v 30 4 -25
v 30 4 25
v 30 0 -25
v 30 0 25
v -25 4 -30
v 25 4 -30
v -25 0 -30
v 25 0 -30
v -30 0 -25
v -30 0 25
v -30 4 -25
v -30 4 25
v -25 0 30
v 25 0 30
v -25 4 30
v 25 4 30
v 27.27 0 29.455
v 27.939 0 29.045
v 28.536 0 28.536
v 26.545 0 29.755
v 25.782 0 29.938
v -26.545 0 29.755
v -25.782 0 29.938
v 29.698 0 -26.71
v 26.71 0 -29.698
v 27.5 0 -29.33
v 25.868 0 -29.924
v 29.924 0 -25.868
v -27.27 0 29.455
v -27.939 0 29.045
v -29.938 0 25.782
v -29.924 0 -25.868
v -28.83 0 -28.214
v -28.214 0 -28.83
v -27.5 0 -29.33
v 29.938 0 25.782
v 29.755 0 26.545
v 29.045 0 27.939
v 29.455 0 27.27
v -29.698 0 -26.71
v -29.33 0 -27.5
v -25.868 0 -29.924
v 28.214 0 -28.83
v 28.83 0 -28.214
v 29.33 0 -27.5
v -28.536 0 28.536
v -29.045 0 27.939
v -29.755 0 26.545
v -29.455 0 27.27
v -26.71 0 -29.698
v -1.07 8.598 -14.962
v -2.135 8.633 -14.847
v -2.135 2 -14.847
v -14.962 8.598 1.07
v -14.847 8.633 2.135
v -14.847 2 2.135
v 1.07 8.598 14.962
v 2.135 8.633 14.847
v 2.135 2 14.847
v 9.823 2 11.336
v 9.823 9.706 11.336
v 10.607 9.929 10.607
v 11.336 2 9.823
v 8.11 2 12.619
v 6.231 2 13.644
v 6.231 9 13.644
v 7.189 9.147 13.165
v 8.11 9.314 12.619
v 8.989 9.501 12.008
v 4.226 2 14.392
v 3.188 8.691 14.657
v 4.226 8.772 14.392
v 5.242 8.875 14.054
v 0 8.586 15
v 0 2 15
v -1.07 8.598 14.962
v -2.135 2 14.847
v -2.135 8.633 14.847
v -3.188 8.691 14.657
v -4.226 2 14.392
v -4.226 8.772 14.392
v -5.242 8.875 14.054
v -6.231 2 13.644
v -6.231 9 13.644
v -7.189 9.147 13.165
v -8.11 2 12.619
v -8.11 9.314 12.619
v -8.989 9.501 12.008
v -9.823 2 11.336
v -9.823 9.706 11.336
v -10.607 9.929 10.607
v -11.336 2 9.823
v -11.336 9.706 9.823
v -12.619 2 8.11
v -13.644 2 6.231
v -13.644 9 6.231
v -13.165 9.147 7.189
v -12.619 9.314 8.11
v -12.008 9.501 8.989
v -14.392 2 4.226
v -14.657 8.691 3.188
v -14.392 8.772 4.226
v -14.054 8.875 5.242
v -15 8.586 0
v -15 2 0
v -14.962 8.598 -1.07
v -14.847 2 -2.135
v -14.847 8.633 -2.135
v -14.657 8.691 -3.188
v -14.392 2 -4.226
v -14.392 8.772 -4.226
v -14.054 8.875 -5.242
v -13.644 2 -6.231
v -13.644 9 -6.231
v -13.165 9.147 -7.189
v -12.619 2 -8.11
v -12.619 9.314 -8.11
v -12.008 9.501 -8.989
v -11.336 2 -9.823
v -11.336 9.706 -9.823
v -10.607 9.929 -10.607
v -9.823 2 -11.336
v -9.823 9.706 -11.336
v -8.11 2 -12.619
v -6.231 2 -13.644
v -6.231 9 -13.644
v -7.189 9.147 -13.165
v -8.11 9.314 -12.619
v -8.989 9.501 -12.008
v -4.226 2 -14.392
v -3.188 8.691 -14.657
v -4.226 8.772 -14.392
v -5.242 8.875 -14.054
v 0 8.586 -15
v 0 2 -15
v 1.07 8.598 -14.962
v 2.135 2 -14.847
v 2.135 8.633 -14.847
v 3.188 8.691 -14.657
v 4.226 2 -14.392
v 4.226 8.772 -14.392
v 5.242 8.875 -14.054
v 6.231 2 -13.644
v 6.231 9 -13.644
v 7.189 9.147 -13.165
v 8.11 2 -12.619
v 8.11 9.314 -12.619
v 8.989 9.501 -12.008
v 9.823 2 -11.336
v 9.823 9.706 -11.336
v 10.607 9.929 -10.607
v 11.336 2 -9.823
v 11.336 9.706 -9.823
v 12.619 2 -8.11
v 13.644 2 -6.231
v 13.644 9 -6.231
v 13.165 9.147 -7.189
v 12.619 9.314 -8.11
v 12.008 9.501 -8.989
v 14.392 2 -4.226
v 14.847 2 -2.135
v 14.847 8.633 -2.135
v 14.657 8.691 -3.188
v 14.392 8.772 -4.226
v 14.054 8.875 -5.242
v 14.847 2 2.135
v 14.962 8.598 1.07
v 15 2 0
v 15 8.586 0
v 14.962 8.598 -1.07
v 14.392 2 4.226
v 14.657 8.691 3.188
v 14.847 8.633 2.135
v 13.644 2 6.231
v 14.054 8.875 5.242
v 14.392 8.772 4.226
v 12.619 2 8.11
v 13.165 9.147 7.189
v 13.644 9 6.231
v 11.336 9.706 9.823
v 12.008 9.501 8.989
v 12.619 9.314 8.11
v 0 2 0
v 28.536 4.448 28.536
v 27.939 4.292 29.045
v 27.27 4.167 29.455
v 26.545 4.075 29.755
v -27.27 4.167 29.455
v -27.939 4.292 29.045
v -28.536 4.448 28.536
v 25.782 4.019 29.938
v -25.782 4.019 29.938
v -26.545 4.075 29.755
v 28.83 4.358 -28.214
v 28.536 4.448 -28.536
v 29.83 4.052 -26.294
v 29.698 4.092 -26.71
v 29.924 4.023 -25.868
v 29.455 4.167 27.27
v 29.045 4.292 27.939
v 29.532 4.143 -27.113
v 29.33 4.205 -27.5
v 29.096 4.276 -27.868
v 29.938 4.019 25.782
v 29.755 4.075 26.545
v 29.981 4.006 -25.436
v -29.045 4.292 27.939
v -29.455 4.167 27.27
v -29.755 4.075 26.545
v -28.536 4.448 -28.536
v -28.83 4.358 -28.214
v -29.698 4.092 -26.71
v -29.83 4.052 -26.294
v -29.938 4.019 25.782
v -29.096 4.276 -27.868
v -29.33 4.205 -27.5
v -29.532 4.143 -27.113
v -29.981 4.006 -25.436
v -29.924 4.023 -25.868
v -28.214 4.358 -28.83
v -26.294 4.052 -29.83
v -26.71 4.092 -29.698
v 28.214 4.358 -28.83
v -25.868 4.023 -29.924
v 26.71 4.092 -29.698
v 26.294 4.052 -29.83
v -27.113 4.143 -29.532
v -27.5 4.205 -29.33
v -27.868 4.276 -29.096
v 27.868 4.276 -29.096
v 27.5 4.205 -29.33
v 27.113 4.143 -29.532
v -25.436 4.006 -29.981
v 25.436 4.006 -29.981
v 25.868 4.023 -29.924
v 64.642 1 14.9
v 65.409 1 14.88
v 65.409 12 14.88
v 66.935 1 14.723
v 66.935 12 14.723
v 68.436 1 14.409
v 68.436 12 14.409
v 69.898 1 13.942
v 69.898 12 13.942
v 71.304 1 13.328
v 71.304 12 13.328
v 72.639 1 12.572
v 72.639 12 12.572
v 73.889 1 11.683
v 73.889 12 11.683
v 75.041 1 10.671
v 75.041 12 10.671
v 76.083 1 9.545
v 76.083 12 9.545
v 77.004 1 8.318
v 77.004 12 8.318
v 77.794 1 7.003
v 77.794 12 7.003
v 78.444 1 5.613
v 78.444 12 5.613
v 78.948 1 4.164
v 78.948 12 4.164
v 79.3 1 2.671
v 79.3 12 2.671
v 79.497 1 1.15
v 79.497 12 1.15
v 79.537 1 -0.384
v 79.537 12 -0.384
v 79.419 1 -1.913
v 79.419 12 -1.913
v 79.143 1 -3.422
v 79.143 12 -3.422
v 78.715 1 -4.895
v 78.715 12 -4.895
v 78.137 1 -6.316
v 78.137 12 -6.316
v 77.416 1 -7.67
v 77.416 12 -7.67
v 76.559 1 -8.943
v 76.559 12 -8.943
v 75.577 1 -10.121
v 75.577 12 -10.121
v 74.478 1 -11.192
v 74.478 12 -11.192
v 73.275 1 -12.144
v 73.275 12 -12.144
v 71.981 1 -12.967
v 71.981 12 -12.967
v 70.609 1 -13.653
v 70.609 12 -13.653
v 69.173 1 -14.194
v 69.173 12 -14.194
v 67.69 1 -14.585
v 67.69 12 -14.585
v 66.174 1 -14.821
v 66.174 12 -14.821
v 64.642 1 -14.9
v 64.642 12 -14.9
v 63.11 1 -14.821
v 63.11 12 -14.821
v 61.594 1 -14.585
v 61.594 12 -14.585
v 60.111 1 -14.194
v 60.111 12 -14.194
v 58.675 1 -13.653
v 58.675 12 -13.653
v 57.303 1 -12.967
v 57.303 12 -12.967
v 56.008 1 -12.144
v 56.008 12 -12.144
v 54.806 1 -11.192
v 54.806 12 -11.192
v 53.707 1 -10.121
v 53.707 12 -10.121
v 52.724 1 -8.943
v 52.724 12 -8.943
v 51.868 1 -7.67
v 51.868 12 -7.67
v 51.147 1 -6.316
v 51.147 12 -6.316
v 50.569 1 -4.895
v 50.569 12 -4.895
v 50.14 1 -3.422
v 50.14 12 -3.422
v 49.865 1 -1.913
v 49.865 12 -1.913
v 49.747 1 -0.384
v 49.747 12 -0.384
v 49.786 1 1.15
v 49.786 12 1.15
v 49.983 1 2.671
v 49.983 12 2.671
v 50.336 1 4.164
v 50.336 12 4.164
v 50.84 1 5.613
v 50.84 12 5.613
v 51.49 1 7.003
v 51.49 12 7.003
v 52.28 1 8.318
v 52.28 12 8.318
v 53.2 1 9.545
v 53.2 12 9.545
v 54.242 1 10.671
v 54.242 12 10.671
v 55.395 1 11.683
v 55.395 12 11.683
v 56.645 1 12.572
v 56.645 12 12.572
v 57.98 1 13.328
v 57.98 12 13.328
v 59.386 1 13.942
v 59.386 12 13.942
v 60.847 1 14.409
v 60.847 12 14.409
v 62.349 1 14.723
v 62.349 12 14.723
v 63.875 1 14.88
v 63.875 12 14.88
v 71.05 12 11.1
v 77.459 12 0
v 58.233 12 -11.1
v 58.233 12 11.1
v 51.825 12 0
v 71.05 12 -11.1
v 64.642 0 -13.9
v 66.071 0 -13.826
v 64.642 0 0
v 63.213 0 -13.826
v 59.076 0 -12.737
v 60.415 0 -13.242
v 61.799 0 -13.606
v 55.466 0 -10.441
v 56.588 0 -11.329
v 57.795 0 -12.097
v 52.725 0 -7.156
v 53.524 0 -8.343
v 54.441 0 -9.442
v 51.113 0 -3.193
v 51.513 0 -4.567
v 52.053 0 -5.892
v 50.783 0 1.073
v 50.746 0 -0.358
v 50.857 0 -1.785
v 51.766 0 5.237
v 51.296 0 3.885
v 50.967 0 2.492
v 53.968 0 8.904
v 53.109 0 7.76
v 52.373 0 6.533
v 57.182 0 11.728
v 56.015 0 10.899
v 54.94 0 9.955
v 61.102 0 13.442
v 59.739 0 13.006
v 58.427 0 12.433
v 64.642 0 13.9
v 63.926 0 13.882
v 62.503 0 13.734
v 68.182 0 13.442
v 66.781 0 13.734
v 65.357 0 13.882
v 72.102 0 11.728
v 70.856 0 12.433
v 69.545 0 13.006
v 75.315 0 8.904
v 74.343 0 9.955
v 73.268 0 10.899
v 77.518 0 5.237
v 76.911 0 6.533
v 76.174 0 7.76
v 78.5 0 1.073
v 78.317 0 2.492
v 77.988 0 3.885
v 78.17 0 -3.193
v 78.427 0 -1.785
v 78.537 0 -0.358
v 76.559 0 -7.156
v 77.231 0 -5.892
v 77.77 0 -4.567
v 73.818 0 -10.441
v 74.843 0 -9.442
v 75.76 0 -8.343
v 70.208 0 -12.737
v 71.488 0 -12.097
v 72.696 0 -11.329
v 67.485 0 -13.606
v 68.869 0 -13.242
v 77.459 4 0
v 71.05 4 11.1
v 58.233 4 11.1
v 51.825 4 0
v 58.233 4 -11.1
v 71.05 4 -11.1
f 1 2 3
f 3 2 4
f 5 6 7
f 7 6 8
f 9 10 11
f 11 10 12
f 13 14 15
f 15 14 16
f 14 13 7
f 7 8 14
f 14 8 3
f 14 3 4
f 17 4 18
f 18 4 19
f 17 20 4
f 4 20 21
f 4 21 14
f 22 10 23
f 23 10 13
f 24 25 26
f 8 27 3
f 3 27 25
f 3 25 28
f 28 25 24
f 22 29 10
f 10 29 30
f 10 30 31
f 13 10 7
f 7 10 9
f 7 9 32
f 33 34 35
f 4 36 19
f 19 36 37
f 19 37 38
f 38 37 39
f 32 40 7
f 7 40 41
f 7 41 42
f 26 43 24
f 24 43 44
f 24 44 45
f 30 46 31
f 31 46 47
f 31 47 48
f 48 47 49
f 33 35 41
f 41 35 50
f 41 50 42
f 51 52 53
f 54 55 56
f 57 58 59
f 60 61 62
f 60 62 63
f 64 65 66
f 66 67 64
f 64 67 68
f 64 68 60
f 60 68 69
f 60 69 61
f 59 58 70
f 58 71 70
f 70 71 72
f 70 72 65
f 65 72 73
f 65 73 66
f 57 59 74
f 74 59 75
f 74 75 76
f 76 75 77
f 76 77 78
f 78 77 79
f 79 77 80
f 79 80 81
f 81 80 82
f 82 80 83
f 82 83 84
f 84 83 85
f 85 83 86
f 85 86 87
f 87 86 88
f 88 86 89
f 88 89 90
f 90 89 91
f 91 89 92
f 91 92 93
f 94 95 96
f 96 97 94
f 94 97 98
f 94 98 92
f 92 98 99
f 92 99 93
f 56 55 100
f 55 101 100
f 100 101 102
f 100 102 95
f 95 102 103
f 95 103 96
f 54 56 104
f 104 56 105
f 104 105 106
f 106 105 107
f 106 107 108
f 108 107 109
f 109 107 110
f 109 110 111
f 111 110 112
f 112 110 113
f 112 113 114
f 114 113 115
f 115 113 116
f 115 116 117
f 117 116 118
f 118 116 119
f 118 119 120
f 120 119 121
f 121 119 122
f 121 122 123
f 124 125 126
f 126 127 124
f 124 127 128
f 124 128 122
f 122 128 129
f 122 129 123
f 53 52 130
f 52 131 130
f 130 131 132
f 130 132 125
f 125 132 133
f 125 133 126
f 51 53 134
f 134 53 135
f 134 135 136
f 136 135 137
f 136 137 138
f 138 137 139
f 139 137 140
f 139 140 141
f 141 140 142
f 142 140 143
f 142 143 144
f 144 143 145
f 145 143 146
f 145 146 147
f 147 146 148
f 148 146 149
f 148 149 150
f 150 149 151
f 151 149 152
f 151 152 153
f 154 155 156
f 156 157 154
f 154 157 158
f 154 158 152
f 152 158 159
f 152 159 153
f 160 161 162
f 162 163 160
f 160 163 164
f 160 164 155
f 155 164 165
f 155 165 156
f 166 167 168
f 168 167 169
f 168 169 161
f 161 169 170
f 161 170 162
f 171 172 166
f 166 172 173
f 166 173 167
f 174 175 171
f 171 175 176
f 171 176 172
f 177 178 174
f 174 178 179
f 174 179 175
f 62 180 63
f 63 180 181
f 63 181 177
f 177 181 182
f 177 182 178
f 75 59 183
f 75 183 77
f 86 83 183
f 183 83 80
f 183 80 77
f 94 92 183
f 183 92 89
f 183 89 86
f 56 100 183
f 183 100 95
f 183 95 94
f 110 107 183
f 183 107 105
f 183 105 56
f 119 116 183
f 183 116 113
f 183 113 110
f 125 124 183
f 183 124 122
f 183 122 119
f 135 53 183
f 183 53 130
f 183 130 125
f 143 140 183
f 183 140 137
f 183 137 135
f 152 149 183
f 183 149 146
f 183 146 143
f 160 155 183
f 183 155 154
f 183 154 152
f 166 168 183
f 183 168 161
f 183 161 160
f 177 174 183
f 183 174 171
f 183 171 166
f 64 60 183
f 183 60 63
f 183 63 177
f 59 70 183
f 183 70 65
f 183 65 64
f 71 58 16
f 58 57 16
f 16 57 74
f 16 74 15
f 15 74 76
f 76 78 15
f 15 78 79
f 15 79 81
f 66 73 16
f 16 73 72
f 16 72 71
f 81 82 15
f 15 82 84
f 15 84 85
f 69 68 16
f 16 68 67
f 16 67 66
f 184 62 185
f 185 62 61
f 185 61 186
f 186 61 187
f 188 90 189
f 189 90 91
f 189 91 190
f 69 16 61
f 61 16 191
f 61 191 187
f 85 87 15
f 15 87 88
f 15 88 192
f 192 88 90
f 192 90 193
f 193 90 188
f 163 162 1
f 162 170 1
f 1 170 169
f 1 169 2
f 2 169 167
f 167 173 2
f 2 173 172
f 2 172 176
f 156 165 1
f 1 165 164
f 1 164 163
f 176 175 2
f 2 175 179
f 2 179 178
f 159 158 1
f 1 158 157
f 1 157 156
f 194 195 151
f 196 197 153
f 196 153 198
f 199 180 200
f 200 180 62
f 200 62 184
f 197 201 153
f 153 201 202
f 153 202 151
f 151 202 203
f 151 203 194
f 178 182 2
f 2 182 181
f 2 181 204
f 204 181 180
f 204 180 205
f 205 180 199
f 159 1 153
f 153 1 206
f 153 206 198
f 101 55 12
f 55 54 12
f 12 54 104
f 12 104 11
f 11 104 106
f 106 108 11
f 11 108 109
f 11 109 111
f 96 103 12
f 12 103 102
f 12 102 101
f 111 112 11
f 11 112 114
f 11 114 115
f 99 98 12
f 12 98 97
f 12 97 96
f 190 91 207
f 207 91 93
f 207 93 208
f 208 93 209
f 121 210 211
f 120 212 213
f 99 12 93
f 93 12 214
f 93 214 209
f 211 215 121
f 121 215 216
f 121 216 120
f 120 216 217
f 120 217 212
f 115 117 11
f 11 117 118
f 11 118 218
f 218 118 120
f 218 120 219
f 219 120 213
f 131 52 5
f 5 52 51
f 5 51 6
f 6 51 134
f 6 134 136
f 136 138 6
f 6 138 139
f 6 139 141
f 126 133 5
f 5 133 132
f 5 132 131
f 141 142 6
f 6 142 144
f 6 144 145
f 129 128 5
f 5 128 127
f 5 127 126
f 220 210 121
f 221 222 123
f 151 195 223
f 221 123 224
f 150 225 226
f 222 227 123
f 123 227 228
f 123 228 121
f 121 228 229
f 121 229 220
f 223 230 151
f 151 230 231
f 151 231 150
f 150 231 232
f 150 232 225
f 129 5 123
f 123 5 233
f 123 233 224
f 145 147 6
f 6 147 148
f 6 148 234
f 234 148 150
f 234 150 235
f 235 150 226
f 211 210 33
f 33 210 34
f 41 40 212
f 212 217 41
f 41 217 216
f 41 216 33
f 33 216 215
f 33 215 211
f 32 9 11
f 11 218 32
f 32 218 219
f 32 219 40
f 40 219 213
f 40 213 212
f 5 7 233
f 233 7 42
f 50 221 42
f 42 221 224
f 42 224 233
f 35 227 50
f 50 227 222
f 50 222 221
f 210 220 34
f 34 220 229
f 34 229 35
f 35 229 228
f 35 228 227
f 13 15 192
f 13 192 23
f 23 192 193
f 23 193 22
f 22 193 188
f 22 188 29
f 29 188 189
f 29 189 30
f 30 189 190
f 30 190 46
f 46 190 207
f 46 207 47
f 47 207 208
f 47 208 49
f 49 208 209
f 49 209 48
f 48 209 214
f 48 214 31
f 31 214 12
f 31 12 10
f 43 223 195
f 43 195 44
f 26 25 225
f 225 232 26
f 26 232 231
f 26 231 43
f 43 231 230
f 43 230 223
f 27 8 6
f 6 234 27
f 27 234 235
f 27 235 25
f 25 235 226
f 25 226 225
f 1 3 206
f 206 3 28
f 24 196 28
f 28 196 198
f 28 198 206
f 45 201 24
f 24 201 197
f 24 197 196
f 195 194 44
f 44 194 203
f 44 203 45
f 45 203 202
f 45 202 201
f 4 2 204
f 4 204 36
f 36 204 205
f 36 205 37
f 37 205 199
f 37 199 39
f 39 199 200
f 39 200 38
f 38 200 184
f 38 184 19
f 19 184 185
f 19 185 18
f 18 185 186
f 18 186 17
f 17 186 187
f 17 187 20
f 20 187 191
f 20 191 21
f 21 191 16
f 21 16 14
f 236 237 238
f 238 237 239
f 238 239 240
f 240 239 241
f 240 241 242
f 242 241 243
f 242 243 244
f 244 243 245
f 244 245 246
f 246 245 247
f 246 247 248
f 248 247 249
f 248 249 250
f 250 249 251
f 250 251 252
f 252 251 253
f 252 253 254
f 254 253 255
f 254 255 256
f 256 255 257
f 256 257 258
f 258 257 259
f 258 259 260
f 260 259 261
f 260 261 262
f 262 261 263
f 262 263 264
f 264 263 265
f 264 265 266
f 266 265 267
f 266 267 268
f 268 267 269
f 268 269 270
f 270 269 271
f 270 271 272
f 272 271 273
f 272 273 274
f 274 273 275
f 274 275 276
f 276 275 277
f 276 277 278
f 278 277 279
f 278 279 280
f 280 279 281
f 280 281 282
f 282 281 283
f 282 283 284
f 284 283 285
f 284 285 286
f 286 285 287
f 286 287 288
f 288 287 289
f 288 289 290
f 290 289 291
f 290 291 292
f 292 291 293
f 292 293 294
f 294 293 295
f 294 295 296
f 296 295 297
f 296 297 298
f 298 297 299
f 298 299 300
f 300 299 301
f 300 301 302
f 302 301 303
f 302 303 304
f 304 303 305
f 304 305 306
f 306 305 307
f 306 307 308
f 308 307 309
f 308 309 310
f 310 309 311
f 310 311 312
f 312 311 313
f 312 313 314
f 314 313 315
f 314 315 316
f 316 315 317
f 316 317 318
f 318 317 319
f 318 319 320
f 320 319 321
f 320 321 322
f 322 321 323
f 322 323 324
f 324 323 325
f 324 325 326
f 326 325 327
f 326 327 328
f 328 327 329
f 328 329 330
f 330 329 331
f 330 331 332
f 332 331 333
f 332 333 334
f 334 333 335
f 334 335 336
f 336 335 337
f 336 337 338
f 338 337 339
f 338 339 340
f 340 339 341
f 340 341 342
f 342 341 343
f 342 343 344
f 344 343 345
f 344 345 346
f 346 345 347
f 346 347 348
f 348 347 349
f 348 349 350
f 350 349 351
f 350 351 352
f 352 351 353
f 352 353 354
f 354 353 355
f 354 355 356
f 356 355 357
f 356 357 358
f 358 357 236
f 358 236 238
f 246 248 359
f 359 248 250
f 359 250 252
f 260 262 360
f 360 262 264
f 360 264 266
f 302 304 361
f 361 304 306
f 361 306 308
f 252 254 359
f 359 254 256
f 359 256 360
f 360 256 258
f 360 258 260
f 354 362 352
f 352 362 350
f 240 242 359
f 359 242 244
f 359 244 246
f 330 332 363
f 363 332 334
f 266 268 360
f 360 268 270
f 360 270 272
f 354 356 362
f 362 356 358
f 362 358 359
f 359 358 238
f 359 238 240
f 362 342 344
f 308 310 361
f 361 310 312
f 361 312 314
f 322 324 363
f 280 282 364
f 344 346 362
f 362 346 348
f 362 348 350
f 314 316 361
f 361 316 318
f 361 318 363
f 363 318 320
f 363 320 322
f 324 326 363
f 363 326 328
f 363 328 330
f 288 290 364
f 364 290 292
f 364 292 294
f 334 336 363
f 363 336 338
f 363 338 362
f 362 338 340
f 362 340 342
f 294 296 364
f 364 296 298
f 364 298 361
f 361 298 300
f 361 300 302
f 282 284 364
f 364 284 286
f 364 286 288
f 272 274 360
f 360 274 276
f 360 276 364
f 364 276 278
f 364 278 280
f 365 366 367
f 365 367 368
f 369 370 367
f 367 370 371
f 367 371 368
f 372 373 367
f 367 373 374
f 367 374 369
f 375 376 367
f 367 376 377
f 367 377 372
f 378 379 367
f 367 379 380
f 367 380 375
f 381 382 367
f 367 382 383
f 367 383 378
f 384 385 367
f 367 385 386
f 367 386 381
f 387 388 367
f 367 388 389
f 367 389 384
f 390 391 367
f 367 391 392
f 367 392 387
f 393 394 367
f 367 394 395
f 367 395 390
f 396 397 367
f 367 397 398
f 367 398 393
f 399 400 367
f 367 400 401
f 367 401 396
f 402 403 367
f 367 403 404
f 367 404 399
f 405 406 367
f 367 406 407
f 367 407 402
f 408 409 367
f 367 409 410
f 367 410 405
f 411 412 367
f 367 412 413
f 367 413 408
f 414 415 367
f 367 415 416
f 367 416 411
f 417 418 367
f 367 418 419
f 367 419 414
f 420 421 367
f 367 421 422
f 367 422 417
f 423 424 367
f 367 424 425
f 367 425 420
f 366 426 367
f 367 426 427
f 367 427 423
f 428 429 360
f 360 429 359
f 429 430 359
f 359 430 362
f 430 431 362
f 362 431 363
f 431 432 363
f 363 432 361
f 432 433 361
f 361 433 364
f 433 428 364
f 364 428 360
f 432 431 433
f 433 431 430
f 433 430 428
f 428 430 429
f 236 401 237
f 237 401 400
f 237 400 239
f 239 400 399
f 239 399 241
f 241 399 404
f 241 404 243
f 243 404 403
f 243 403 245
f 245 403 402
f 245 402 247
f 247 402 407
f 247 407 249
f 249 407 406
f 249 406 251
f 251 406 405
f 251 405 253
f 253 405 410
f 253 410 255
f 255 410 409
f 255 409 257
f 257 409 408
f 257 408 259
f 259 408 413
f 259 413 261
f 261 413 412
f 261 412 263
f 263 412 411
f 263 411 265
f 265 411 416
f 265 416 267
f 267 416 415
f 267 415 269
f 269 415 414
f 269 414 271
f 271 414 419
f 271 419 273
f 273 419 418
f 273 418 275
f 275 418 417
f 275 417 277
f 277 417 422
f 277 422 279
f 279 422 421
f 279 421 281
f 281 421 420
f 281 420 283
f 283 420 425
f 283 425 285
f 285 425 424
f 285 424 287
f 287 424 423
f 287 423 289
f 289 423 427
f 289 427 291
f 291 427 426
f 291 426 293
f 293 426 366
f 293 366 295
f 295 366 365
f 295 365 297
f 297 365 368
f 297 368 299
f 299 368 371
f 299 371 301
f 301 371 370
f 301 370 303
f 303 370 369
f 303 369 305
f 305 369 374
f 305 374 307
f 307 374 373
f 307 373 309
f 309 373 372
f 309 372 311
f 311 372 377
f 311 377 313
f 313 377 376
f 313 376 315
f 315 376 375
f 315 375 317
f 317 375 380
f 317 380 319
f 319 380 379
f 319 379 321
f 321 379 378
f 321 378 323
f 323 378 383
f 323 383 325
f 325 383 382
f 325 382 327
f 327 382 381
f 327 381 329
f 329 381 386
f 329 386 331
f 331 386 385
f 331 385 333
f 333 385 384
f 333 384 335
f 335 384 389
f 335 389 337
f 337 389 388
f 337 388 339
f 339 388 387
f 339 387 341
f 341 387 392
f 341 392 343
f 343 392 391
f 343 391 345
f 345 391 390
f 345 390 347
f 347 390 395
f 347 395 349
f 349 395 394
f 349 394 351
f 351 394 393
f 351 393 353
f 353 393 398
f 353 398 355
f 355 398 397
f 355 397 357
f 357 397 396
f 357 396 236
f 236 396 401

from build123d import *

# Parameters (mm, degrees)
CROQUIS1_W              = 60
CROQUIS1_H              = 60
SALIENTE_EXTRUIR1_DEPTH = 10
CROQUIS2_R              = 15
CORTAR_EXTRUIR1_DEPTH   = 8
CROQUIS3_R              = 14.9
SALIENTE_EXTRUIR2_DEPTH = 12
CORTAR_EXTRUIR2_DEPTH   = 8
CHAFL_N1_SIZE           = 1
CHAFL_N2_SIZE           = 6
CHAFL_N2_SIZE_2         = 19.625115711
REDONDEO1_R             = 5


with BuildPart() as part:
    # Croquis1 → Saliente-Extruir1 (new body)
    with BuildSketch(Plane(origin=(0, 0, 0), x_dir=(1, 0, 0), z_dir=(0, 1, 0))):
        Rectangle(CROQUIS1_W, CROQUIS1_H)
    extrude(amount=SALIENTE_EXTRUIR1_DEPTH)

    # Croquis2 → Cortar-Extruir1 (cut)
    with BuildSketch(Plane(origin=(0, 10, 0), x_dir=(1, 0, 0), z_dir=(0, 1, 0))):
        with Locations(Location((0, 0, 0), (0, 0, 270))):
            Circle(CROQUIS2_R)
    extrude(amount=-CORTAR_EXTRUIR1_DEPTH, mode=Mode.SUBTRACT)

    # Chaflán2
    # the kernel refuses this chamfer: 19.625115711, 6 mm, written as the material it takes off along each edge
    with BuildSketch(Plane(origin=(-80.942779868, 10, -30), x_dir=(0, -0.9928170985366542, -0.11964200288050775), z_dir=(1, 0, 0)), Plane(origin=(-30, 10, 80.942779868), x_dir=(-0.11964200288050775, -0.9928170985366542, 0), z_dir=(0, 0, -1)), Plane(origin=(30, 10, -80.942779868), x_dir=(0.11964200288050775, -0.9928170985366542, 0), z_dir=(0, 0, 1))) as chafl_n2_piece_1:
        Polygon((CHAFL_N2_SIZE * 0.992817098537, -CHAFL_N2_SIZE * 0.119642002881), (-CHAFL_N2_SIZE_2 * 0.11964200288, -CHAFL_N2_SIZE_2 * 0.992817098532), (0, 0), align=None)
    extrude(amount=161.885559735, mode=Mode.SUBTRACT)
    with BuildSketch(Plane(origin=(80.942779868, 10, 30), x_dir=(0, 0.011263281176818222, -0.9999365672367082), z_dir=(-1, 0, 0))) as chafl_n2_piece_2:
        Polygon((CHAFL_N2_SIZE_2 * 0.999936567232, CHAFL_N2_SIZE_2 * 0.0112632811768), (-CHAFL_N2_SIZE * 0.0112632811768, CHAFL_N2_SIZE * 0.999936567237), (0, 0), align=None)
    extrude(amount=161.885559735, mode=Mode.SUBTRACT)

    # Redondeo1
    redondeo1_edges = [part.edges().sort_by_distance(p)[0] for p in [
        (-30, 2, -30),
        (30, 2, -30),
        (-30, 2, 30),
        (30, 2, 30),
    ]]
    fillet(redondeo1_edges, radius=REDONDEO1_R)


with BuildPart() as body_2:
    # Croquis3 → Saliente-Extruir2 (new body)
    with BuildSketch(Plane.XZ):
        with Locations(Location((64.64183589, 0, 0), (0, 0, 270))):
            Circle(CROQUIS3_R)
    extrude(amount=-SALIENTE_EXTRUIR2_DEPTH)

    # Croquis4 → Cortar-Extruir2 (cut)
    with BuildSketch(Plane(origin=(0, 12, 0), x_dir=(1, 0, 0), z_dir=(0, 1, 0))):
        Polygon((77.459011866, 0), (71.050423878, 11.1), (58.233247902, 11.1), (51.824659914, 0), (58.233247902, -11.1), (71.050423878, -11.1), align=None)
    extrude(amount=-CORTAR_EXTRUIR2_DEPTH, mode=Mode.SUBTRACT)

    # Chaflán1
    chafl_n1_edges = [body_2.edges().sort_by_distance(p)[0] for p in [
        (64.64183589, 0, 14.9),
    ]]
    chamfer(chafl_n1_edges, length=CHAFL_N1_SIZE)


solid = Compound([part.part, body_2.part])
